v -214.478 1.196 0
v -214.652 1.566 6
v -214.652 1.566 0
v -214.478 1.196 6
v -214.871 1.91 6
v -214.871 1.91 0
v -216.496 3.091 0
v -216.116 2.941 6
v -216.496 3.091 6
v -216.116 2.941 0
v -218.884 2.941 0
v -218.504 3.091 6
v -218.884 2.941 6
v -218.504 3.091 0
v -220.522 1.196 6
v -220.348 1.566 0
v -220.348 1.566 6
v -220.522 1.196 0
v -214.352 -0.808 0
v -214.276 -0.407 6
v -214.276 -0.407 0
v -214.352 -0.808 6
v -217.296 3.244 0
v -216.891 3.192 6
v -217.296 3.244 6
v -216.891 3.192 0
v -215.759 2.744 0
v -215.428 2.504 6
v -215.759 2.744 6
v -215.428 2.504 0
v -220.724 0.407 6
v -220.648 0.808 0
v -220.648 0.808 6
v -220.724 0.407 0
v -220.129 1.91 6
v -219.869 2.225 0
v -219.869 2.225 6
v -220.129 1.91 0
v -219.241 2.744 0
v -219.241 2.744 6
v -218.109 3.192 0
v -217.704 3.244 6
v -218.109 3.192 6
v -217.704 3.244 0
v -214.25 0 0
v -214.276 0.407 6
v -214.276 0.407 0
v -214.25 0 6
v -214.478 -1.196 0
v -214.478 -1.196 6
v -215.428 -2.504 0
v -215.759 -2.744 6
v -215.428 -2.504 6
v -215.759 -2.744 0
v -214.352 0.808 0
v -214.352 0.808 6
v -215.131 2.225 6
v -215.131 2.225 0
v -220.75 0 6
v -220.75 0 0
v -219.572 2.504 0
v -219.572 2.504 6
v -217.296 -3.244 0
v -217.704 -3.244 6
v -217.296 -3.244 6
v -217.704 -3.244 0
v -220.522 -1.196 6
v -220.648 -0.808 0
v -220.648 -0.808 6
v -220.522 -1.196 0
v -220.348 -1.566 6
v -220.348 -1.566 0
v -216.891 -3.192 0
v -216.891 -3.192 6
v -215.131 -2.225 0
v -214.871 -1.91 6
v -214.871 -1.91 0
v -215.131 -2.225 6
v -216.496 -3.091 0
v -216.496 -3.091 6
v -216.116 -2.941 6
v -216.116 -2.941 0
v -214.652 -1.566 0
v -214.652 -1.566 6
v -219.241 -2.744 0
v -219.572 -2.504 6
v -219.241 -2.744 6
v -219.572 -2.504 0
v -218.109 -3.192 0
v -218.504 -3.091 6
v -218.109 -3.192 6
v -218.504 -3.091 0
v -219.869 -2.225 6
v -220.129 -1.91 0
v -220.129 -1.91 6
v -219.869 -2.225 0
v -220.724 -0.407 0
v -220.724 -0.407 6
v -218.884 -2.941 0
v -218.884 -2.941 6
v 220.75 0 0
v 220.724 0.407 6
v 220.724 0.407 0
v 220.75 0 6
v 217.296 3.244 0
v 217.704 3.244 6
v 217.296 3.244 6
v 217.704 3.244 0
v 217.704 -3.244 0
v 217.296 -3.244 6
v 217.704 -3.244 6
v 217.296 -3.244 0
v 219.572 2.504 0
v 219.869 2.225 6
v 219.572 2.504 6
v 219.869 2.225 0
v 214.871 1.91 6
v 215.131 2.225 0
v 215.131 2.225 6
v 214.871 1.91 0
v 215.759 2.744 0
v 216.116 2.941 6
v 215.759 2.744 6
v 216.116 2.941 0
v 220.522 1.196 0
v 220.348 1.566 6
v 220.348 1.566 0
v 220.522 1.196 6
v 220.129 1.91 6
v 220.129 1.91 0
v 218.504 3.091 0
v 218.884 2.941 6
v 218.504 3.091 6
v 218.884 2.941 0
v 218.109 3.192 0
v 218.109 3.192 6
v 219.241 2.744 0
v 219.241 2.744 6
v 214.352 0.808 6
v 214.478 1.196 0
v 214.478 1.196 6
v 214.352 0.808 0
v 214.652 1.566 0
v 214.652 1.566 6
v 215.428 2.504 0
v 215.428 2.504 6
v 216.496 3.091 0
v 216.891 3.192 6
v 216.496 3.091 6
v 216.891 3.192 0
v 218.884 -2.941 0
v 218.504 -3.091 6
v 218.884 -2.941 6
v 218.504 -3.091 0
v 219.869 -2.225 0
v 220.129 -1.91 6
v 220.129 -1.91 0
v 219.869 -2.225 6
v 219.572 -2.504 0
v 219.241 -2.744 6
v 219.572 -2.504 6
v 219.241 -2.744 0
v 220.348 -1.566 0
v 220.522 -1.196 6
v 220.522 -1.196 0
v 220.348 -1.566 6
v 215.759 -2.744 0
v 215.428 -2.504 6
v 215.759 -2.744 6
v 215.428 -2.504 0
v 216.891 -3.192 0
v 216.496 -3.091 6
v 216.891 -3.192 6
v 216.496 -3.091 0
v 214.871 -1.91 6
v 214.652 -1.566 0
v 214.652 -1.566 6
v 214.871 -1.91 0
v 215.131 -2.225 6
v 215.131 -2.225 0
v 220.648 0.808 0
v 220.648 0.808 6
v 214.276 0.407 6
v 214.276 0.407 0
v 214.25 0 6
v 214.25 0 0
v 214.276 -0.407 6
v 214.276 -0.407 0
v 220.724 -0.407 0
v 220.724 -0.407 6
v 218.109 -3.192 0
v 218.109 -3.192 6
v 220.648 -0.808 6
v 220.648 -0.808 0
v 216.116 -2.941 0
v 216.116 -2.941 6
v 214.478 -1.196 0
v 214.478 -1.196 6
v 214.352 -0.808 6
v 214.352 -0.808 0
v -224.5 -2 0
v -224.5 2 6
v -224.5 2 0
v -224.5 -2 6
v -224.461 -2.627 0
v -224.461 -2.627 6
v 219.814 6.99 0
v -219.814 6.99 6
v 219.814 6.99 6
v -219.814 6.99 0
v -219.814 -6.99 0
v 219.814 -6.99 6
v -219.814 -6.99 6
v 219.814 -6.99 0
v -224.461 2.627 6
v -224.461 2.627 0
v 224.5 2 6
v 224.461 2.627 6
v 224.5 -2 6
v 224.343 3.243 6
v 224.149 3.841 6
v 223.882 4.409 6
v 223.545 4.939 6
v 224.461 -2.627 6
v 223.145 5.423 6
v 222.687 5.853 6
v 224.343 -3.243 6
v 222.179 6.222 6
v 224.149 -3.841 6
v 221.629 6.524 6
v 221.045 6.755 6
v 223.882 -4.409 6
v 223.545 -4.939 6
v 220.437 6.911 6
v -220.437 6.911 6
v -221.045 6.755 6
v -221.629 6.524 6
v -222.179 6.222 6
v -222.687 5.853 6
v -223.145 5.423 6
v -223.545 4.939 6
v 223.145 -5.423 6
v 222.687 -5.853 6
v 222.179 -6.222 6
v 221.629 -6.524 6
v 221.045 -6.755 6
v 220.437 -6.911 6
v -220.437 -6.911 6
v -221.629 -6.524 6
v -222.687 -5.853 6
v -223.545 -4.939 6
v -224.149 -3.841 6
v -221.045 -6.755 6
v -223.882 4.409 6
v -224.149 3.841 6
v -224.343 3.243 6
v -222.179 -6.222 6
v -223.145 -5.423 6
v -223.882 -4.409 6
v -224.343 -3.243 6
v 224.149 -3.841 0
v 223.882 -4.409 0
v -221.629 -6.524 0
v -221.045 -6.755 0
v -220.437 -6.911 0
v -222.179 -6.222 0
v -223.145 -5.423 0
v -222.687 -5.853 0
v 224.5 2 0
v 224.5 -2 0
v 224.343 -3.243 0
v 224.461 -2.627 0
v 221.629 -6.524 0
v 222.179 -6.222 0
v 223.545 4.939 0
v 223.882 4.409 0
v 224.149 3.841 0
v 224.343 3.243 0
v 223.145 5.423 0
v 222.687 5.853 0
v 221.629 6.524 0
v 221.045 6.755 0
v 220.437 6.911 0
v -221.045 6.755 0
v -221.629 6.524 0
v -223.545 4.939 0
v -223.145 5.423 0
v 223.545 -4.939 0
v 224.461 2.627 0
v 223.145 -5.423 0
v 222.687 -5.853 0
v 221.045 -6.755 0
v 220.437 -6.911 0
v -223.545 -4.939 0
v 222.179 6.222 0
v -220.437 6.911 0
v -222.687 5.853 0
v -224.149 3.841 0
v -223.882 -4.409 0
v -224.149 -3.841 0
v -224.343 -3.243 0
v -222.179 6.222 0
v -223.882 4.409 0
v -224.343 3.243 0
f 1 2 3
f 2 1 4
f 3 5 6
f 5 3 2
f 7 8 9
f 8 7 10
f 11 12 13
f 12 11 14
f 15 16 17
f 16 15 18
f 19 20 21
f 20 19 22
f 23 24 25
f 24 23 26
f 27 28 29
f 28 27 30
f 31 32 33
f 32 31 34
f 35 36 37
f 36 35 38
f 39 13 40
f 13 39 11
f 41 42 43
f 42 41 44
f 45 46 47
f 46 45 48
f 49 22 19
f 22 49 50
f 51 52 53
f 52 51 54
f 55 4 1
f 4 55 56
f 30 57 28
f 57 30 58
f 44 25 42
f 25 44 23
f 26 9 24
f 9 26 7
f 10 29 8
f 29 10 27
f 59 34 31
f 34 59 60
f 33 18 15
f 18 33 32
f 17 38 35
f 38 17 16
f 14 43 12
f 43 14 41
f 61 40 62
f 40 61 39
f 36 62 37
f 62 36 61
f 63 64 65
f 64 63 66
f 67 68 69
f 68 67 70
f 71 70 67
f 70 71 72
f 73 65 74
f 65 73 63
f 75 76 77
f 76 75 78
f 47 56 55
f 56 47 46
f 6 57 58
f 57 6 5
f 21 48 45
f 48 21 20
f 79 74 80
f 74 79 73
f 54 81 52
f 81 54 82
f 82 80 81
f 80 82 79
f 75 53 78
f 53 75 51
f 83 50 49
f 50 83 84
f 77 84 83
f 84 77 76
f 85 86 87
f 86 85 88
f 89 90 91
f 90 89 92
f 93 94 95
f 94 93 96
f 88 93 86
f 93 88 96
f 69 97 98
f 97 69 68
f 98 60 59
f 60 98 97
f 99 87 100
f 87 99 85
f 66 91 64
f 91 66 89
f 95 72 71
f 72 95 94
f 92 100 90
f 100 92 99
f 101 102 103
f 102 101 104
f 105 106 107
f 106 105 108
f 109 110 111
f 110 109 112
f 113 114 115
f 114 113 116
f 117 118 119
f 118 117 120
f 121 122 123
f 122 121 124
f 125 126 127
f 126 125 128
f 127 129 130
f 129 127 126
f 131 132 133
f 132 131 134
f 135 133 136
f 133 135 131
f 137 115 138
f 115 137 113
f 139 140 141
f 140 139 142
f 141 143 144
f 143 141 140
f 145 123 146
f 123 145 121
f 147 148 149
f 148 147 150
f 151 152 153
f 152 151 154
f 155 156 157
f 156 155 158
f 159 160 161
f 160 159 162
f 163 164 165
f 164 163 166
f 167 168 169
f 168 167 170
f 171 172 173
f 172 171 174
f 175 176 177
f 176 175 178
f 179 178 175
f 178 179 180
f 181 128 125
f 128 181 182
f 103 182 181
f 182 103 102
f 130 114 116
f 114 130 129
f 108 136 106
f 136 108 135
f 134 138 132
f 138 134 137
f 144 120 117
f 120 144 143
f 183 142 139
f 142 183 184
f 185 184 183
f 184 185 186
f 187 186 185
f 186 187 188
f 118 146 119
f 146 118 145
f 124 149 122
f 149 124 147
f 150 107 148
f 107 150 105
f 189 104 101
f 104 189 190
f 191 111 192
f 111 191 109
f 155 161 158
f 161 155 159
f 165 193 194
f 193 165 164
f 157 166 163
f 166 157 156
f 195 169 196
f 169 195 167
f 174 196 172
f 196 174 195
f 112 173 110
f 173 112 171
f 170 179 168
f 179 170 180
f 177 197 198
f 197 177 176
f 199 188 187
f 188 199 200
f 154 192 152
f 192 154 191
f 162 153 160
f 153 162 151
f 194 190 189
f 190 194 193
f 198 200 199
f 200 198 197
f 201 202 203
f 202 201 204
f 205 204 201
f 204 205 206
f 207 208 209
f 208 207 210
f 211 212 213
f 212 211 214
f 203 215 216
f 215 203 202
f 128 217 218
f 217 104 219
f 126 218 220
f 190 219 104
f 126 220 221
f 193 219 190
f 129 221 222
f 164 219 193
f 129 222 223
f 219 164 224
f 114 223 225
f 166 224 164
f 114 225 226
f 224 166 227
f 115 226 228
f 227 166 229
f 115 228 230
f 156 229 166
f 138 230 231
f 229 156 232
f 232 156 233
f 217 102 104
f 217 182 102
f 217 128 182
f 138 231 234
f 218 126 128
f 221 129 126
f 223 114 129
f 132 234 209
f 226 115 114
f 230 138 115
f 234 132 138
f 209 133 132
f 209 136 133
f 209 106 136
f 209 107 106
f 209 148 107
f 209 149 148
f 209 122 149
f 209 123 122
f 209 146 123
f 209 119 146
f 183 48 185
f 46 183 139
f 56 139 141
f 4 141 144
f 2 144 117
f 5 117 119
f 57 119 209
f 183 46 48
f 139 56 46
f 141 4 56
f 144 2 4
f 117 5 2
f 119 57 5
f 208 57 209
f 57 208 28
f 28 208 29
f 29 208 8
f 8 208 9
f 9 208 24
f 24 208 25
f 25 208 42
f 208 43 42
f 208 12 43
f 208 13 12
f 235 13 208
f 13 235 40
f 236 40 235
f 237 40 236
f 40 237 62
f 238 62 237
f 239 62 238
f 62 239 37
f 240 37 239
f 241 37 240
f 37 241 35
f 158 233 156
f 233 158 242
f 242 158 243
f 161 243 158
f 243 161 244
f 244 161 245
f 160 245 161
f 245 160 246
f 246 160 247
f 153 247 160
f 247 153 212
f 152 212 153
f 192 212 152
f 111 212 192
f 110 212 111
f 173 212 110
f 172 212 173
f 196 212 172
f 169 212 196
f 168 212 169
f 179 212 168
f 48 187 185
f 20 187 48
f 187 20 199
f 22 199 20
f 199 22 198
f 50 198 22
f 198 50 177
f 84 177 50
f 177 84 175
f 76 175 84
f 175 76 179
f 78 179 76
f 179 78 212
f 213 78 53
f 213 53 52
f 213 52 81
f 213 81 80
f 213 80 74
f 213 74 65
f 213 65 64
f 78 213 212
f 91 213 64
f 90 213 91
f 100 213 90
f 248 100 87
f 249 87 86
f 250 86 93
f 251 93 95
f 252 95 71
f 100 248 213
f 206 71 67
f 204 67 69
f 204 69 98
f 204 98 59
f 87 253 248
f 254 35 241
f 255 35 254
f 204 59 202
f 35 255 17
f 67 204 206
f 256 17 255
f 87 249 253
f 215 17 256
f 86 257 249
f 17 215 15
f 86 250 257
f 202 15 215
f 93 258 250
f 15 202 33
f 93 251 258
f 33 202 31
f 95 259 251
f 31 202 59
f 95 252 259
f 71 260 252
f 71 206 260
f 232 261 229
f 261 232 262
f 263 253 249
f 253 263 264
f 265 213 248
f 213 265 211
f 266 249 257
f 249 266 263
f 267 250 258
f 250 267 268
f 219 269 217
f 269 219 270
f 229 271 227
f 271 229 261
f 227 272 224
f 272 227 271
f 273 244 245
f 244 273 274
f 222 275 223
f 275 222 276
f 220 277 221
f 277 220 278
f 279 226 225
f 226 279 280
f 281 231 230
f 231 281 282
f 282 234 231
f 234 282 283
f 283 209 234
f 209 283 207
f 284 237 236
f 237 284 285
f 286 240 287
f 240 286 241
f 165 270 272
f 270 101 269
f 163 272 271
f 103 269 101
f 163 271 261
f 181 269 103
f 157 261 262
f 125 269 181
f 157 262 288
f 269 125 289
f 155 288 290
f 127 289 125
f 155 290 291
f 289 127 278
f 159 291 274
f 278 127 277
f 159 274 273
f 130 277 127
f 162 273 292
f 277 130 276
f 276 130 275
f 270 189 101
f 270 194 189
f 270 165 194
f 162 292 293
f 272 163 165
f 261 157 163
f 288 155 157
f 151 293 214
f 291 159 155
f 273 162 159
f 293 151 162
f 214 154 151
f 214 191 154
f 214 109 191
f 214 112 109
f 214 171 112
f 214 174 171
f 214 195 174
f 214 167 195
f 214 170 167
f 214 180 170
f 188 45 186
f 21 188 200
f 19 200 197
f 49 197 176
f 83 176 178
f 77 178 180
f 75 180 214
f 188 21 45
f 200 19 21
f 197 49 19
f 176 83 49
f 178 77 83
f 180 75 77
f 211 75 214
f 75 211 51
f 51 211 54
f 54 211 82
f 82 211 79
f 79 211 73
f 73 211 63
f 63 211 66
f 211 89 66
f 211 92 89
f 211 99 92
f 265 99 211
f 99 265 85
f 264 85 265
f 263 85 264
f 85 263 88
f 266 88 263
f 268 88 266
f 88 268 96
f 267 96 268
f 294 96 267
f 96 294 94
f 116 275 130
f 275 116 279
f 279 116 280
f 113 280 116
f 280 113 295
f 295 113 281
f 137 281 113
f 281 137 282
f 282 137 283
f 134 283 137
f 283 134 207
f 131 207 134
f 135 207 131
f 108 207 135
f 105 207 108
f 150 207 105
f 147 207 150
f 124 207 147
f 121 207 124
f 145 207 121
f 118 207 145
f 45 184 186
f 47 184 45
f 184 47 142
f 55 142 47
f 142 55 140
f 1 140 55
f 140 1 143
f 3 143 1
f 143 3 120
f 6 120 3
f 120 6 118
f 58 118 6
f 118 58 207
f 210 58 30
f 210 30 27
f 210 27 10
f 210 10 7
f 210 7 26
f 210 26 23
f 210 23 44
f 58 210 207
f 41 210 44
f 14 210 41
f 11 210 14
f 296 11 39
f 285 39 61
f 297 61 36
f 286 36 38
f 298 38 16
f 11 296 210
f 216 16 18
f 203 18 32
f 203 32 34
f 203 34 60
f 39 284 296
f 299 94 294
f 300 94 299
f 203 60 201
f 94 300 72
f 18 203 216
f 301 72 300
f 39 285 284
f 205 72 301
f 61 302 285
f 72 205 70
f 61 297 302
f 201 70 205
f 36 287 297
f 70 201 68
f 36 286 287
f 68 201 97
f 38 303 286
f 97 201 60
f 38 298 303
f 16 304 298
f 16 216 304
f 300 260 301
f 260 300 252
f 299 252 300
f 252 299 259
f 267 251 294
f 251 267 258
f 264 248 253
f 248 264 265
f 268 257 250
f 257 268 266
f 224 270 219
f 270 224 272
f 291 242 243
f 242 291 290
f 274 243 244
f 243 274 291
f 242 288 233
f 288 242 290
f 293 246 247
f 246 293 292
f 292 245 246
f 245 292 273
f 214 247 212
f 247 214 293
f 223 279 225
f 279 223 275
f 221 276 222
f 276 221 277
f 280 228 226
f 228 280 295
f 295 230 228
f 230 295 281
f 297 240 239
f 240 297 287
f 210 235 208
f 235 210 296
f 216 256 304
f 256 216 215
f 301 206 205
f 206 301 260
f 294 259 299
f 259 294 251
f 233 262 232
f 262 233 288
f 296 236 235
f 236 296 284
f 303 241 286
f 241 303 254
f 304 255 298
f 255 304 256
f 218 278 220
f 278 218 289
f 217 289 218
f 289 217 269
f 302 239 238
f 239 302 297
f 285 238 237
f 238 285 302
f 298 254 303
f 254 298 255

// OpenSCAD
$fn = 50;


difference() {
	union() {
		hull() {
			translate(v = [-219.5000000000, 2.0000000000, 0]) {
				cylinder(h = 6, r = 5);
			}
			translate(v = [219.5000000000, 2.0000000000, 0]) {
				cylinder(h = 6, r = 5);
			}
			translate(v = [-219.5000000000, -2.0000000000, 0]) {
				cylinder(h = 6, r = 5);
			}
			translate(v = [219.5000000000, -2.0000000000, 0]) {
				cylinder(h = 6, r = 5);
			}
		}
	}
	union() {
		translate(v = [-217.5000000000, 0.0000000000, -100.0000000000]) {
			cylinder(h = 200, r = 3.2500000000);
		}
		translate(v = [-217.5000000000, 0.0000000000, -100.0000000000]) {
			cylinder(h = 200, r = 3.2500000000);
		}
		translate(v = [217.5000000000, 0.0000000000, -100.0000000000]) {
			cylinder(h = 200, r = 3.2500000000);
		}
		translate(v = [217.5000000000, 0.0000000000, -100.0000000000]) {
			cylinder(h = 200, r = 3.2500000000);
		}
	}
}
